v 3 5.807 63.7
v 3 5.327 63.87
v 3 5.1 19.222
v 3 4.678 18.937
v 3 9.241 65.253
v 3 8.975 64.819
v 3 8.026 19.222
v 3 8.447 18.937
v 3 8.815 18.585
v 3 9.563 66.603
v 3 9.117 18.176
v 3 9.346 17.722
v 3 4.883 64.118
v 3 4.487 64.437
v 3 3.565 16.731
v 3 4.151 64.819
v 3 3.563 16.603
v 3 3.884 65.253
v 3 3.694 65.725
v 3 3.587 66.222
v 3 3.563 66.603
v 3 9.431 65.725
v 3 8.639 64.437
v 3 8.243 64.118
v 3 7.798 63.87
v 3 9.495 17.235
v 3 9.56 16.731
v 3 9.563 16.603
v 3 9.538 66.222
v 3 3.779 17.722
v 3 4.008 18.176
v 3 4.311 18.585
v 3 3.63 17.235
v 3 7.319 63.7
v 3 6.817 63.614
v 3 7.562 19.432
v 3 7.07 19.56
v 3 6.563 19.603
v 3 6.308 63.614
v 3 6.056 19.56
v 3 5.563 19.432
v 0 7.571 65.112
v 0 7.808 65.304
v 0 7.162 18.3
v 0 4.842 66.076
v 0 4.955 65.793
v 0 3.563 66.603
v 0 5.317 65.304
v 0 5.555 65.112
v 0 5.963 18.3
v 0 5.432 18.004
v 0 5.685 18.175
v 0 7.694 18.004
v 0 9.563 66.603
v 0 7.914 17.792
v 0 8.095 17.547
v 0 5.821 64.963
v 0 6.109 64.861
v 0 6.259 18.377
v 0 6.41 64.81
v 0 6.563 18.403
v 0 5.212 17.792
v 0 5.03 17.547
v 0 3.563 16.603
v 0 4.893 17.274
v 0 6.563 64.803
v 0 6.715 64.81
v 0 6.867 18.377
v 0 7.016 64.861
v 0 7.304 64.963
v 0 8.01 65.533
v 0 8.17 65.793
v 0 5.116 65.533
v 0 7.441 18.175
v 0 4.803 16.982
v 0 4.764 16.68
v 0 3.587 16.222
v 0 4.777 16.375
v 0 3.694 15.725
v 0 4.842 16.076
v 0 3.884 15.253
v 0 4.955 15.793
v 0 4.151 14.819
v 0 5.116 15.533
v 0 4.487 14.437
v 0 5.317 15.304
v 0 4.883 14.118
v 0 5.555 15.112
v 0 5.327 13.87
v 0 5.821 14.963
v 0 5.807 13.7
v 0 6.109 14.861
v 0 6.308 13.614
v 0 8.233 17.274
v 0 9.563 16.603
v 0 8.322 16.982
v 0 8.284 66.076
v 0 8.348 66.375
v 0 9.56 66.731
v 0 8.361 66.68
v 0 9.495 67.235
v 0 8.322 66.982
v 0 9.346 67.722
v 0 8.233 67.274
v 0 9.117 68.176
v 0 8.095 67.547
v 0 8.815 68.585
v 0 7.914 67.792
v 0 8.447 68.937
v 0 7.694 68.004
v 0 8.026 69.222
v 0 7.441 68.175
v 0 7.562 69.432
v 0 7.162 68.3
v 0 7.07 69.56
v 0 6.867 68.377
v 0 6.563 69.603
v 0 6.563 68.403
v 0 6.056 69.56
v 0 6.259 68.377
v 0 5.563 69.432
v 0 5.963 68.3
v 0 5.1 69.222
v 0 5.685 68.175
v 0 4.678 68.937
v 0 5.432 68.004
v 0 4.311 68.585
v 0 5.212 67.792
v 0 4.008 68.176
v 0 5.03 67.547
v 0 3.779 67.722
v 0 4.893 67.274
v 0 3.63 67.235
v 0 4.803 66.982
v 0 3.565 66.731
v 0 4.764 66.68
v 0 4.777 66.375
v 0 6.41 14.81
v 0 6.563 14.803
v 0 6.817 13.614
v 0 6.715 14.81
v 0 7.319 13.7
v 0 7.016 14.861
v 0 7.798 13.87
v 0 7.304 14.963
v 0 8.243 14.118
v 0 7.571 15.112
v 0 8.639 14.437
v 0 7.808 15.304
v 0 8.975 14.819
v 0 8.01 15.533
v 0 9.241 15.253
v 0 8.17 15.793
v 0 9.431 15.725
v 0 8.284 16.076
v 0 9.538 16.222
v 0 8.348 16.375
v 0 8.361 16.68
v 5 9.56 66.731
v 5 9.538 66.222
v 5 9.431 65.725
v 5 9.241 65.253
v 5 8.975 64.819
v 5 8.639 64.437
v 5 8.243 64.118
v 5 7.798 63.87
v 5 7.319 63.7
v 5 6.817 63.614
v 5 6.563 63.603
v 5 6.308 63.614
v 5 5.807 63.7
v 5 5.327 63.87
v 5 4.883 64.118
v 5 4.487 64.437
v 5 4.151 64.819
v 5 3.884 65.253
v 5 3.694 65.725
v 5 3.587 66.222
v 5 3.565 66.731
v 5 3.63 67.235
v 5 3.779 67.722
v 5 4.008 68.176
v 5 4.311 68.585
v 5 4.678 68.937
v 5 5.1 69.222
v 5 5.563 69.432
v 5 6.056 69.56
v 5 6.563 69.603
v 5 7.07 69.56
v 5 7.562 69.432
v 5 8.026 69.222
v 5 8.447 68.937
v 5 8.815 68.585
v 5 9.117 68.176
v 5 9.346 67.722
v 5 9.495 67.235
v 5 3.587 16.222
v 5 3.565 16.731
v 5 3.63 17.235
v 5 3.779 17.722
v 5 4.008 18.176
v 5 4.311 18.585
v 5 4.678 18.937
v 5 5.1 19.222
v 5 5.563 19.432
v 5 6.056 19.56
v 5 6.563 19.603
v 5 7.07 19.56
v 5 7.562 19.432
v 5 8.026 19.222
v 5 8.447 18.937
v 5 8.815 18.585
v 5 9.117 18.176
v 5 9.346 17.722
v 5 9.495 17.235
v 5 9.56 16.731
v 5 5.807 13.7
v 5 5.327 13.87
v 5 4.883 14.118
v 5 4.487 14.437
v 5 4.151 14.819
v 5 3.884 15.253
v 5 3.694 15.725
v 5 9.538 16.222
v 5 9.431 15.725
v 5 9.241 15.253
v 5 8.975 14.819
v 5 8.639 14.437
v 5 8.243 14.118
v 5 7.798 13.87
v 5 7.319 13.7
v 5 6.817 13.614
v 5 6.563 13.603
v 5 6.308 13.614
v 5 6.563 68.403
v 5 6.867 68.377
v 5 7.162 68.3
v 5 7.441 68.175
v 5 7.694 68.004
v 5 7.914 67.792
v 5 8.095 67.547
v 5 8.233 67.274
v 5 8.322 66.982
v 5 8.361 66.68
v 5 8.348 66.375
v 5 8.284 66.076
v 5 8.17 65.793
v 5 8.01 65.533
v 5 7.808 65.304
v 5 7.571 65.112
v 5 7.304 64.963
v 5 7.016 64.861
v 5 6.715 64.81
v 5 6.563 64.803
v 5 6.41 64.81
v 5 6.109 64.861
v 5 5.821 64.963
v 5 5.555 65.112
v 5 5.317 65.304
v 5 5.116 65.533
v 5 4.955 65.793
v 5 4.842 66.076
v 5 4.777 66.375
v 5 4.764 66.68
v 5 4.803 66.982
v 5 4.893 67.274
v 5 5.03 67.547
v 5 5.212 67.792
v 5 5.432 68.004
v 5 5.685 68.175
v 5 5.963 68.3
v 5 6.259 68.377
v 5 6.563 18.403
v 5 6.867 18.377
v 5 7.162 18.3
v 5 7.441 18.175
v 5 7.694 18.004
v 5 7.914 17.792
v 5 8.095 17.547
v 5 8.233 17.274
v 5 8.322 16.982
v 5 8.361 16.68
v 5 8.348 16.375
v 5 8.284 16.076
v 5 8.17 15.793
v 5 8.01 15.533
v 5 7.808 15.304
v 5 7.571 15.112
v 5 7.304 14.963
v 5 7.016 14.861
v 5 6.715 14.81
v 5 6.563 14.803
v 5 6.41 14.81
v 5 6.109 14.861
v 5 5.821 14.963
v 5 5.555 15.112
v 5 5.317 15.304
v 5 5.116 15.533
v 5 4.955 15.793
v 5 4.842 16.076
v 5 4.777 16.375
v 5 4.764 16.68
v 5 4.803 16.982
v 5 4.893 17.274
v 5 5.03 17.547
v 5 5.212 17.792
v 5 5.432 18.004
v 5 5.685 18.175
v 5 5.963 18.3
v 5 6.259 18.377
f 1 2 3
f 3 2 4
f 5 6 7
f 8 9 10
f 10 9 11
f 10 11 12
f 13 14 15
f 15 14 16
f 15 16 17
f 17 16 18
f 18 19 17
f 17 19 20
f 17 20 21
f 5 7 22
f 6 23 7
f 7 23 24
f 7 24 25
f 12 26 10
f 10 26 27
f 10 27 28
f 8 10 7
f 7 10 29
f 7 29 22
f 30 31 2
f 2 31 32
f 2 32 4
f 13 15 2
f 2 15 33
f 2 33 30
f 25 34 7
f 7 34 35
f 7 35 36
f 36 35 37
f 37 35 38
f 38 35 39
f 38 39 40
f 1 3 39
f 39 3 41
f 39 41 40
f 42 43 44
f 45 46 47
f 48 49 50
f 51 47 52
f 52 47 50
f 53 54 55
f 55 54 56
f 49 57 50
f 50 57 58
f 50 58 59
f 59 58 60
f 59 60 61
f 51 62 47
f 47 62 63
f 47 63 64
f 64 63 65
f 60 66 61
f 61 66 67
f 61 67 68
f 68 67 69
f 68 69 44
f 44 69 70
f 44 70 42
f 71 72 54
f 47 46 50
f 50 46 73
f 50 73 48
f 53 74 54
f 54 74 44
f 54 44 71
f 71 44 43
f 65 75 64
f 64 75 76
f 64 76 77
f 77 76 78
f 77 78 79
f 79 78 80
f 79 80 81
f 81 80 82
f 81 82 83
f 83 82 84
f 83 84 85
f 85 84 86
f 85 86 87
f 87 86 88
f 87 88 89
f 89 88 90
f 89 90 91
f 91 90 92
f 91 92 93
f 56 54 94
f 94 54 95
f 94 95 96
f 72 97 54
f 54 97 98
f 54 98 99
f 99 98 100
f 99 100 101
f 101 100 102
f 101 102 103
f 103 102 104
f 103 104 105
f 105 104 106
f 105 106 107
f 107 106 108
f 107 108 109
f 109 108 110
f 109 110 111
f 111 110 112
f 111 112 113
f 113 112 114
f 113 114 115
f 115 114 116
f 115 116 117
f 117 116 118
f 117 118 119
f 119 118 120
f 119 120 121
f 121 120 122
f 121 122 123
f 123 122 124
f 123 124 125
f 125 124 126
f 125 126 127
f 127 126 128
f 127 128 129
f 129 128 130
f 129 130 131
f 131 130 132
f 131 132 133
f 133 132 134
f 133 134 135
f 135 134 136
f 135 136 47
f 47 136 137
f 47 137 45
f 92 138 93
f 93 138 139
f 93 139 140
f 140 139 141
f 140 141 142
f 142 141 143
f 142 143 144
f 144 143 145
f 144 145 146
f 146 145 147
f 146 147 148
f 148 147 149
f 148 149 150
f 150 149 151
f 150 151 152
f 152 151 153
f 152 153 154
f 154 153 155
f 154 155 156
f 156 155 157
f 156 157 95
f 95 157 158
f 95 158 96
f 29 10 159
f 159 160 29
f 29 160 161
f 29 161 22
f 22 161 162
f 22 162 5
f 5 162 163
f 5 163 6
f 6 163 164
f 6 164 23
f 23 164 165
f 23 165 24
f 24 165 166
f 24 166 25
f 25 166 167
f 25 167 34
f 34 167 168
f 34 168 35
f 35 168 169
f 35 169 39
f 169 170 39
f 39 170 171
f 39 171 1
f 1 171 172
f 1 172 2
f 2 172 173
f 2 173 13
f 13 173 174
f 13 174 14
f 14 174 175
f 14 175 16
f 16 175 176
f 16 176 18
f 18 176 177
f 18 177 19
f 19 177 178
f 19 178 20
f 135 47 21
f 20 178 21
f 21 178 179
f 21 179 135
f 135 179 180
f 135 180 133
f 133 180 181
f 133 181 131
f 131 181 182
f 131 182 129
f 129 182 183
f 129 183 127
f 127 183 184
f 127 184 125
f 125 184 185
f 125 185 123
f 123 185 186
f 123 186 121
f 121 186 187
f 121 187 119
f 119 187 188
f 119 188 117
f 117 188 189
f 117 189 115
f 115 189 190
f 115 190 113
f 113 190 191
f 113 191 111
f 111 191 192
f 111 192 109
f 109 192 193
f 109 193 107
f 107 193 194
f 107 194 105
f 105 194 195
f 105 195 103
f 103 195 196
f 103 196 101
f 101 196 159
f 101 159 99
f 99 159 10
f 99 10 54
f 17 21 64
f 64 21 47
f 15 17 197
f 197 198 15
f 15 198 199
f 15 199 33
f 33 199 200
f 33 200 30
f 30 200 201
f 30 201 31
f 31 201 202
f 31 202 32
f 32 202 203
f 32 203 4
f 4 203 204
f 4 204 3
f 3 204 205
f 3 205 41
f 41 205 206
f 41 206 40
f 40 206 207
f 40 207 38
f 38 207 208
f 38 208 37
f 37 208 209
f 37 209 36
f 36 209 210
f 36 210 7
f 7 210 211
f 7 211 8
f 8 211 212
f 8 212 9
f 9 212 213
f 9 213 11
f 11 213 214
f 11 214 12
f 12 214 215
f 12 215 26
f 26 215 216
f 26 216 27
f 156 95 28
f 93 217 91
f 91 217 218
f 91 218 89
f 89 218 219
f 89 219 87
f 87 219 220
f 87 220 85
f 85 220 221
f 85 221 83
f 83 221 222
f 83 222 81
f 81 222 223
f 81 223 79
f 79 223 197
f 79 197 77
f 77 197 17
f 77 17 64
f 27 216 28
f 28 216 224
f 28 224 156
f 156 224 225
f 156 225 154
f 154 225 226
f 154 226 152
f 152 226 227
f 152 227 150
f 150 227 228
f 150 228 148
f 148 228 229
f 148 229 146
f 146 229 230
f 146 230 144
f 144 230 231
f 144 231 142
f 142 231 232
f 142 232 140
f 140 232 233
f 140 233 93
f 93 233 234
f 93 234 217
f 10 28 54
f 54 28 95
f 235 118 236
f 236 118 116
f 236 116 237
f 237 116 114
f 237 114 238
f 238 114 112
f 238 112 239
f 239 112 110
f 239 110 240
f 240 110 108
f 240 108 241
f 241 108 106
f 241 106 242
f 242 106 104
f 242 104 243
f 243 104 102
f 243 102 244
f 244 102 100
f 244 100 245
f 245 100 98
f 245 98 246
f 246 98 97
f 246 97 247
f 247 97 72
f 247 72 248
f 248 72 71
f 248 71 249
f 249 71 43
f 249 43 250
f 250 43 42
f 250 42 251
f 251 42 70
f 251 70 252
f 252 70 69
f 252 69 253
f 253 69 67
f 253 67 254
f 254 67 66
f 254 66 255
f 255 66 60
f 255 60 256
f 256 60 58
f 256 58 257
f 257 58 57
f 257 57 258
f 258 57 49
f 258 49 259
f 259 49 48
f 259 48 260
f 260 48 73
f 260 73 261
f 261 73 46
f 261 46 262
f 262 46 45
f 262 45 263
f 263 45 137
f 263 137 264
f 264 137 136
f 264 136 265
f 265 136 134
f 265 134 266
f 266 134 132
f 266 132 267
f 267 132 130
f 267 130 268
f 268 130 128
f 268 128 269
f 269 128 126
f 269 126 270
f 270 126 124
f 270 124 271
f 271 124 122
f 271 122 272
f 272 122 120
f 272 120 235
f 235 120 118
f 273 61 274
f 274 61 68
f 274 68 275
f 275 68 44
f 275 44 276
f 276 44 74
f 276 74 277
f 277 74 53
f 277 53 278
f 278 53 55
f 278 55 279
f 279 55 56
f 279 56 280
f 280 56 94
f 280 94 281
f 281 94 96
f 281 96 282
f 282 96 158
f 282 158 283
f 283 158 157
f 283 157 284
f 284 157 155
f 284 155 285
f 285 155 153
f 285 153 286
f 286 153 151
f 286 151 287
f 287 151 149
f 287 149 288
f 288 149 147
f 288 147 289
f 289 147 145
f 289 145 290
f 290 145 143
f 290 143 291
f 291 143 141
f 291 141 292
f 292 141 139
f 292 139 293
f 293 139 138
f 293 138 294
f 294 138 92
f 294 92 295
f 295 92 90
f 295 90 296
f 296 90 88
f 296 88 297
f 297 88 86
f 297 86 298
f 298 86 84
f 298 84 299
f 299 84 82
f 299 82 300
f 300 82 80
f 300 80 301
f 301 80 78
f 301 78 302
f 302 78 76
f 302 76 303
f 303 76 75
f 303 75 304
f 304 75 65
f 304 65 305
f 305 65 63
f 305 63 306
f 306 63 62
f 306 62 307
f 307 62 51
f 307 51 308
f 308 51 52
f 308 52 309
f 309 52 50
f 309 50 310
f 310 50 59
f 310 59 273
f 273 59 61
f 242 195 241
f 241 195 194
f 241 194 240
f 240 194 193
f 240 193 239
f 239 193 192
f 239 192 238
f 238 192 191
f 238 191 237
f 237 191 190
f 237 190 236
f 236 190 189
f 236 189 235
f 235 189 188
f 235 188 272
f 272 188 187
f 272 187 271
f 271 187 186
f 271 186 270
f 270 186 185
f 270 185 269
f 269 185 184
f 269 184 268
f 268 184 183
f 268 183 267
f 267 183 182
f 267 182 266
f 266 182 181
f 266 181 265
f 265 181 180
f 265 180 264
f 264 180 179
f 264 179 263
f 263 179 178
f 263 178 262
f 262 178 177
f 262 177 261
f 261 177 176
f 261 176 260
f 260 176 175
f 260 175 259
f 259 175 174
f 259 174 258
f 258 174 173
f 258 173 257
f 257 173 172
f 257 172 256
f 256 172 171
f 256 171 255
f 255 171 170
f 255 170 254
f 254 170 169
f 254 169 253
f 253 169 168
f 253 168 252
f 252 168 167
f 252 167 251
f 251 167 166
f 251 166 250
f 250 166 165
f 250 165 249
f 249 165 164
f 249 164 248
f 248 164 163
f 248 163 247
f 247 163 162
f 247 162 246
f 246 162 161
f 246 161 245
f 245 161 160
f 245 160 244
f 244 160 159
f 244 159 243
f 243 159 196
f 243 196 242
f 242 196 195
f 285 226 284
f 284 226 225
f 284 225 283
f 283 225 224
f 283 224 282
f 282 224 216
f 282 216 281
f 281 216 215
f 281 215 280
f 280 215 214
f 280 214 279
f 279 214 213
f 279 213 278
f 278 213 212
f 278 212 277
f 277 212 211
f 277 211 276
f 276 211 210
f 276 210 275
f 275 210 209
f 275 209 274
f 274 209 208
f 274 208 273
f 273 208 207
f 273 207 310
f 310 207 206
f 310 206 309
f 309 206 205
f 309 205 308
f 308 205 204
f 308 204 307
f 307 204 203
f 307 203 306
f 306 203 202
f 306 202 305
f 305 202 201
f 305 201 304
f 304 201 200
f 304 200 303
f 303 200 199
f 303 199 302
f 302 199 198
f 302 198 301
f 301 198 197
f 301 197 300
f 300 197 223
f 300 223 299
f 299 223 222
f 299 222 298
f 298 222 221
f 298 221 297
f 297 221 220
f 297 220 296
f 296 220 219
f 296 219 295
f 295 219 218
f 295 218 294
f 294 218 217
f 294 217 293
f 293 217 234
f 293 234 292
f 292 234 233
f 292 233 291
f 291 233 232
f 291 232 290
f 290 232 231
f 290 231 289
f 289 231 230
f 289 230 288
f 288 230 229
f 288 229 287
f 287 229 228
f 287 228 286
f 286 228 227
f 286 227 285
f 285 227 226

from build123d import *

# Parameters (mm, degrees)
SKETCH1_R           = 1.8
BOSS_EXTRUDE1_DEPTH = 3
SKETCH2_R           = 3
SKETCH2_R_2         = 1.8
BOSS_EXTRUDE2_DEPTH = 2


with BuildPart() as part:
    # Sketch1 → Boss-Extrude1 (new body)
    with BuildSketch(Plane(origin=(0, 0, 0), x_dir=(0, 0, -1), z_dir=(1, 0, 0))):
        with BuildLine():
            Line((-66.603258311, 3.562711266), (-16.603258311, 3.562711266))
            ThreePointArc((-16.603258311, 3.562711266), (-13.603258311, 6.562711266), (-16.603258311, 9.562711266))
            Line((-16.603258311, 9.562711266), (-66.603258311, 9.562711266))
            ThreePointArc((-66.603258311, 9.562711266), (-69.603258311, 6.562711266), (-66.603258311, 3.562711266))
        make_face()
        with Locations((-66.603258311, 6.562711266)):
            Circle(SKETCH1_R, mode=Mode.SUBTRACT)
        with Locations((-16.603258311, 6.562711266)):
            Circle(SKETCH1_R, mode=Mode.SUBTRACT)
    extrude(amount=BOSS_EXTRUDE1_DEPTH)

    # Sketch2 → Boss-Extrude2 (add)
    with BuildSketch(Plane(origin=(3, 0, 0), x_dir=(0, 0, -1), z_dir=(1, 0, 0))):
        with Locations((-66.603258311, 6.562711266)):
            Circle(SKETCH2_R)
        with Locations((-66.603258311, 6.562711266)):
            Circle(SKETCH2_R_2, mode=Mode.SUBTRACT)
        with Locations((-16.603258311, 6.562711266)):
            Circle(SKETCH2_R)
        with Locations((-16.603258311, 6.562711266)):
            Circle(SKETCH2_R_2, mode=Mode.SUBTRACT)
    extrude(amount=BOSS_EXTRUDE2_DEPTH)


solid = part.part
